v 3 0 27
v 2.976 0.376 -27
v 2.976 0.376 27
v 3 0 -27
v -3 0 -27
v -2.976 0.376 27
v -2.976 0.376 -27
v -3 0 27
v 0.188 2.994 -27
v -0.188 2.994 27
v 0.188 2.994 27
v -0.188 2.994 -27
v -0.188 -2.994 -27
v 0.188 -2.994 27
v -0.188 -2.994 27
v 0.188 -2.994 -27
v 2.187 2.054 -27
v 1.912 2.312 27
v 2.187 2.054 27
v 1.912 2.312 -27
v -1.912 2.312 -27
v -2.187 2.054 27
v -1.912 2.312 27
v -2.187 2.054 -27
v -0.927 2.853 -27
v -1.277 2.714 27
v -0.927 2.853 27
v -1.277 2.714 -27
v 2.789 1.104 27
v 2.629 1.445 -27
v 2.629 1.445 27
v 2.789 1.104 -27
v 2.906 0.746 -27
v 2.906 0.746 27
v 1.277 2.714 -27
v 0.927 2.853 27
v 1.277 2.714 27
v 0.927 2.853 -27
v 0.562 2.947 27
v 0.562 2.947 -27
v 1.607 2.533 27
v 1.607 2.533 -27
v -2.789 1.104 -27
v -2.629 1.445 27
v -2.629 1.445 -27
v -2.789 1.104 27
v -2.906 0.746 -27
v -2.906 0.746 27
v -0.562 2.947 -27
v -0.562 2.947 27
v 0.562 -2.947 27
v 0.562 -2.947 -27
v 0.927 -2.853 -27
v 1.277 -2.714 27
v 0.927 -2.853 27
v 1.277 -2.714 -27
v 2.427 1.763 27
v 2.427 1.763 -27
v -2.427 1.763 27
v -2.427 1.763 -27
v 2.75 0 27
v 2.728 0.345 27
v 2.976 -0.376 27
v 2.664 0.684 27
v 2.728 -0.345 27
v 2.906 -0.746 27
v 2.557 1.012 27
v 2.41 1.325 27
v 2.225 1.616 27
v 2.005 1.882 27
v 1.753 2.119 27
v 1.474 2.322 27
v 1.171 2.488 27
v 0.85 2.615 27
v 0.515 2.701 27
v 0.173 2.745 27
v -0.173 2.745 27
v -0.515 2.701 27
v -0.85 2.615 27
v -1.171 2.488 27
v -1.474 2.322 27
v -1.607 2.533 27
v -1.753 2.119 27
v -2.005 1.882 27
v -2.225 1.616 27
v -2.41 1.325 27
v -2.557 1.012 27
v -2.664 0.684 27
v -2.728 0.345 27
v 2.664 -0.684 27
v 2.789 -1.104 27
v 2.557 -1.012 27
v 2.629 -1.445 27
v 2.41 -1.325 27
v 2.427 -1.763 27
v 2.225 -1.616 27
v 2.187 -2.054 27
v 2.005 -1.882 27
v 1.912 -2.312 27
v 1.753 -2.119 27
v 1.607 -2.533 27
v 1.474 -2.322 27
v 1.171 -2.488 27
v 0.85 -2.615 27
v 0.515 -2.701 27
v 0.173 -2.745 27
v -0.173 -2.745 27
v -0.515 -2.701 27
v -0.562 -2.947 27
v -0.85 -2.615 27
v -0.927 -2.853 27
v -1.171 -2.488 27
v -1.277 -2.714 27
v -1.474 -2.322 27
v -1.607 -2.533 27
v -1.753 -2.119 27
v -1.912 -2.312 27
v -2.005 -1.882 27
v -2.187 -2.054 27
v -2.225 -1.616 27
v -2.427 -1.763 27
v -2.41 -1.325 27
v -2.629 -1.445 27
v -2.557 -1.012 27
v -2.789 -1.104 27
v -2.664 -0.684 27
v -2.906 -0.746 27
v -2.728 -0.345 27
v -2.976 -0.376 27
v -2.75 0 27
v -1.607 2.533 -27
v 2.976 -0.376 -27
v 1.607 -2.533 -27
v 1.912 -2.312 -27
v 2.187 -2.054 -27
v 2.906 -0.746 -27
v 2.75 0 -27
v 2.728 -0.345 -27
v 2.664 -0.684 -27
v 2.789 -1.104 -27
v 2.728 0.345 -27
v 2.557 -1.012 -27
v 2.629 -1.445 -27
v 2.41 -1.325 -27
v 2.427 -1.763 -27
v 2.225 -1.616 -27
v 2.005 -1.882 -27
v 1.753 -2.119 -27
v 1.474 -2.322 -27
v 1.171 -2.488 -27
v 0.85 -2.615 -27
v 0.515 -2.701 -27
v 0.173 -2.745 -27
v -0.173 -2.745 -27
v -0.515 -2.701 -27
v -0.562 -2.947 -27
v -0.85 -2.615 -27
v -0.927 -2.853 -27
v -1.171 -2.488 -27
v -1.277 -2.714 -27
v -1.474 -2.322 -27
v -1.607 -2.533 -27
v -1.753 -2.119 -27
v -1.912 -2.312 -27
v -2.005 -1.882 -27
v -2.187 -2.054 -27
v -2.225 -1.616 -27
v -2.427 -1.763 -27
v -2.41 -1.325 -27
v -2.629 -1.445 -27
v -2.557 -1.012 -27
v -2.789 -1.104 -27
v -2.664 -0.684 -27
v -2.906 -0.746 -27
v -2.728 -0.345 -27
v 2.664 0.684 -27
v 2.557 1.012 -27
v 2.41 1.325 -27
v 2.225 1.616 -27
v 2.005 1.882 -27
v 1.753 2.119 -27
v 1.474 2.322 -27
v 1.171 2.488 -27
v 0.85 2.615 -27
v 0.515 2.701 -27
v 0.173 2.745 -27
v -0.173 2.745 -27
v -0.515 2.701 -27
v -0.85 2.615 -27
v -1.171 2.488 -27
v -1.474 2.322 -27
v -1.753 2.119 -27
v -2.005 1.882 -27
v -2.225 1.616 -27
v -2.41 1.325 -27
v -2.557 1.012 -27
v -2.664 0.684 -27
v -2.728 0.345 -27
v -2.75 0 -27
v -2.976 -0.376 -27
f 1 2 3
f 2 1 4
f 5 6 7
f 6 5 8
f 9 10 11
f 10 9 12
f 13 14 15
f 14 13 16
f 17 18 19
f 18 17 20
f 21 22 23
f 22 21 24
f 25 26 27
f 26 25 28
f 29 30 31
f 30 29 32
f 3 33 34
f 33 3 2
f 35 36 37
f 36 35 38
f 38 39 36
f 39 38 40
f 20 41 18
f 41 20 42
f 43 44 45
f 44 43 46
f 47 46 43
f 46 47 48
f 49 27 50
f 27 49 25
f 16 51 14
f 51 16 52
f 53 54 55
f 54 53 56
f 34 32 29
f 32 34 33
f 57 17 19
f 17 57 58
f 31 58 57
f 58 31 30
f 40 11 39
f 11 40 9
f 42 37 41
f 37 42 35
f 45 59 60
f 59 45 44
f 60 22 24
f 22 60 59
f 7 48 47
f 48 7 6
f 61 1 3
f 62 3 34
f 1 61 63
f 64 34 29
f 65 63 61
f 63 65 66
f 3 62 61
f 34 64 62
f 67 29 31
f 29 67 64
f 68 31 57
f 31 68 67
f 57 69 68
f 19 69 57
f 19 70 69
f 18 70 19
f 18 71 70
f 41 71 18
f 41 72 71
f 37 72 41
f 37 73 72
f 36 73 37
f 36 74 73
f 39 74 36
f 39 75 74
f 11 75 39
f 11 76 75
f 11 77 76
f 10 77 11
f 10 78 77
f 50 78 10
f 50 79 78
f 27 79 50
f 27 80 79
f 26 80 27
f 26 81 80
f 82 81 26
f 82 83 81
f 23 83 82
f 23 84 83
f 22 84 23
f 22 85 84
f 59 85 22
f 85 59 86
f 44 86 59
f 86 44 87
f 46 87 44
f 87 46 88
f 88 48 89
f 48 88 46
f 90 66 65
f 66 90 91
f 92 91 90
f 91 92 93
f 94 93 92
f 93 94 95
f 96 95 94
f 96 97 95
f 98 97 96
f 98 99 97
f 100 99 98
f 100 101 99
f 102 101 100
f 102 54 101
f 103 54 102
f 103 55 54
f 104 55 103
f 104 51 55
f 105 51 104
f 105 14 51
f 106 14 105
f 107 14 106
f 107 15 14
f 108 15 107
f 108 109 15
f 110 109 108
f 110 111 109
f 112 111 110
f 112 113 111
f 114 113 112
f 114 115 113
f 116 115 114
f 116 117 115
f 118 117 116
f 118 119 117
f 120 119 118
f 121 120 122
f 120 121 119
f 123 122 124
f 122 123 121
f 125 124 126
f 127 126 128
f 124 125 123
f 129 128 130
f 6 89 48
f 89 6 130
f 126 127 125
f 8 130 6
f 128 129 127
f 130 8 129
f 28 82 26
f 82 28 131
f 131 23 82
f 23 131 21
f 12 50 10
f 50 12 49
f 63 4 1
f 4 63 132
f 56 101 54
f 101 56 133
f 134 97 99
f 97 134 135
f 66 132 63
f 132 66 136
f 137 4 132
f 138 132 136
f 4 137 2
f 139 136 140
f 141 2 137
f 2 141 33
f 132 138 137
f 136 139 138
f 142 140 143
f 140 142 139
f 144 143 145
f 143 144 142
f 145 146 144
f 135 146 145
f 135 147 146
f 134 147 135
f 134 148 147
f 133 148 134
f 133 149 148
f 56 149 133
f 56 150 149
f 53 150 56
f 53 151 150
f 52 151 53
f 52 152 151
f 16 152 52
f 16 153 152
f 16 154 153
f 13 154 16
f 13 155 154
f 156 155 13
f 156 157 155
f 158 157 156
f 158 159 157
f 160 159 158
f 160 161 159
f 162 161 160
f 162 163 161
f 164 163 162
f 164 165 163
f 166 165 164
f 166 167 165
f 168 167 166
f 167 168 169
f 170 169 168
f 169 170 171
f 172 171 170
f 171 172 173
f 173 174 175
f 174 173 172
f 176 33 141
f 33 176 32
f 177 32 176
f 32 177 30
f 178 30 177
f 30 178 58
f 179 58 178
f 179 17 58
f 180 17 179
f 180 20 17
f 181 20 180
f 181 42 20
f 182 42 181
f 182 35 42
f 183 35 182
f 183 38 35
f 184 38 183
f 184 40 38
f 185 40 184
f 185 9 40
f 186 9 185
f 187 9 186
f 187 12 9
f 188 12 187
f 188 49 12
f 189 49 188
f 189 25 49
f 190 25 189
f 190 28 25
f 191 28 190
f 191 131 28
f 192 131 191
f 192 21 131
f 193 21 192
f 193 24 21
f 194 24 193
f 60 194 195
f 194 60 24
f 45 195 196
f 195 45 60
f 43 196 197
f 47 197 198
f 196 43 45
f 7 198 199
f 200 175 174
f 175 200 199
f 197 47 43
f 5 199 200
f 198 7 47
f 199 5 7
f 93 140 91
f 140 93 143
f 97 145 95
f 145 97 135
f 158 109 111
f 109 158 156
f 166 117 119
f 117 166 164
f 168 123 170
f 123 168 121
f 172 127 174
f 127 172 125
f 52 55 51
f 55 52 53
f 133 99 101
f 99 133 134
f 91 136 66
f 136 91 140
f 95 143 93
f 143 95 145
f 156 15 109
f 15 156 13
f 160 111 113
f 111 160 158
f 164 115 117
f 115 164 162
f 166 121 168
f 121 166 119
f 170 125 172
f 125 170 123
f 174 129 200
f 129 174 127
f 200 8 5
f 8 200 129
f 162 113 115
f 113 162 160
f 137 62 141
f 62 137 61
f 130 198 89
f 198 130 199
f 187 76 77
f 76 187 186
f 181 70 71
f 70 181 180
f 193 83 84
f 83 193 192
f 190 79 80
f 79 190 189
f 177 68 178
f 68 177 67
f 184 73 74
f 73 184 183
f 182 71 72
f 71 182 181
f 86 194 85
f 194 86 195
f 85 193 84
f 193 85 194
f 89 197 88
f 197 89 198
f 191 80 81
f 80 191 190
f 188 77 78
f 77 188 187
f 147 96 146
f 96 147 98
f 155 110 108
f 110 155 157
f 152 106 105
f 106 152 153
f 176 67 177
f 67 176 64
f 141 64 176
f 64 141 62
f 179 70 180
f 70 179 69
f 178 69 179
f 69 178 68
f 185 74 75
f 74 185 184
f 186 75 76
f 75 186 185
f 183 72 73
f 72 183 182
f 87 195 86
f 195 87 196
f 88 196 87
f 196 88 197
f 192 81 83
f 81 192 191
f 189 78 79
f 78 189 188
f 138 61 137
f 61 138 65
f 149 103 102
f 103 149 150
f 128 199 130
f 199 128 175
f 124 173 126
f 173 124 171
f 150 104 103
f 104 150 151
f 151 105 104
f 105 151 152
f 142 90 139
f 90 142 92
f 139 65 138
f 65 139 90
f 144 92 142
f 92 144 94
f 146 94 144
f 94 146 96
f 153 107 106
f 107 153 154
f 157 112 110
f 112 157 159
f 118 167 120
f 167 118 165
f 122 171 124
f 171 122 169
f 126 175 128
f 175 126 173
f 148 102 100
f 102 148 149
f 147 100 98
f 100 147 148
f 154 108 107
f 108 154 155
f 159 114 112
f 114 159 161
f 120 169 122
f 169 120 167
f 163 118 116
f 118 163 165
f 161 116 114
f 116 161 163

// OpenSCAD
$fn = 50;


difference() {
	union() {
		translate(v = [0, 0, -27.0000000000]) {
			cylinder(h = 54, r = 3.0000000000);
		}
	}
	union() {
		translate(v = [0, 0, -100.0000000000]) {
			cylinder(h = 200, r = 2.7500000000);
		}
	}
}
